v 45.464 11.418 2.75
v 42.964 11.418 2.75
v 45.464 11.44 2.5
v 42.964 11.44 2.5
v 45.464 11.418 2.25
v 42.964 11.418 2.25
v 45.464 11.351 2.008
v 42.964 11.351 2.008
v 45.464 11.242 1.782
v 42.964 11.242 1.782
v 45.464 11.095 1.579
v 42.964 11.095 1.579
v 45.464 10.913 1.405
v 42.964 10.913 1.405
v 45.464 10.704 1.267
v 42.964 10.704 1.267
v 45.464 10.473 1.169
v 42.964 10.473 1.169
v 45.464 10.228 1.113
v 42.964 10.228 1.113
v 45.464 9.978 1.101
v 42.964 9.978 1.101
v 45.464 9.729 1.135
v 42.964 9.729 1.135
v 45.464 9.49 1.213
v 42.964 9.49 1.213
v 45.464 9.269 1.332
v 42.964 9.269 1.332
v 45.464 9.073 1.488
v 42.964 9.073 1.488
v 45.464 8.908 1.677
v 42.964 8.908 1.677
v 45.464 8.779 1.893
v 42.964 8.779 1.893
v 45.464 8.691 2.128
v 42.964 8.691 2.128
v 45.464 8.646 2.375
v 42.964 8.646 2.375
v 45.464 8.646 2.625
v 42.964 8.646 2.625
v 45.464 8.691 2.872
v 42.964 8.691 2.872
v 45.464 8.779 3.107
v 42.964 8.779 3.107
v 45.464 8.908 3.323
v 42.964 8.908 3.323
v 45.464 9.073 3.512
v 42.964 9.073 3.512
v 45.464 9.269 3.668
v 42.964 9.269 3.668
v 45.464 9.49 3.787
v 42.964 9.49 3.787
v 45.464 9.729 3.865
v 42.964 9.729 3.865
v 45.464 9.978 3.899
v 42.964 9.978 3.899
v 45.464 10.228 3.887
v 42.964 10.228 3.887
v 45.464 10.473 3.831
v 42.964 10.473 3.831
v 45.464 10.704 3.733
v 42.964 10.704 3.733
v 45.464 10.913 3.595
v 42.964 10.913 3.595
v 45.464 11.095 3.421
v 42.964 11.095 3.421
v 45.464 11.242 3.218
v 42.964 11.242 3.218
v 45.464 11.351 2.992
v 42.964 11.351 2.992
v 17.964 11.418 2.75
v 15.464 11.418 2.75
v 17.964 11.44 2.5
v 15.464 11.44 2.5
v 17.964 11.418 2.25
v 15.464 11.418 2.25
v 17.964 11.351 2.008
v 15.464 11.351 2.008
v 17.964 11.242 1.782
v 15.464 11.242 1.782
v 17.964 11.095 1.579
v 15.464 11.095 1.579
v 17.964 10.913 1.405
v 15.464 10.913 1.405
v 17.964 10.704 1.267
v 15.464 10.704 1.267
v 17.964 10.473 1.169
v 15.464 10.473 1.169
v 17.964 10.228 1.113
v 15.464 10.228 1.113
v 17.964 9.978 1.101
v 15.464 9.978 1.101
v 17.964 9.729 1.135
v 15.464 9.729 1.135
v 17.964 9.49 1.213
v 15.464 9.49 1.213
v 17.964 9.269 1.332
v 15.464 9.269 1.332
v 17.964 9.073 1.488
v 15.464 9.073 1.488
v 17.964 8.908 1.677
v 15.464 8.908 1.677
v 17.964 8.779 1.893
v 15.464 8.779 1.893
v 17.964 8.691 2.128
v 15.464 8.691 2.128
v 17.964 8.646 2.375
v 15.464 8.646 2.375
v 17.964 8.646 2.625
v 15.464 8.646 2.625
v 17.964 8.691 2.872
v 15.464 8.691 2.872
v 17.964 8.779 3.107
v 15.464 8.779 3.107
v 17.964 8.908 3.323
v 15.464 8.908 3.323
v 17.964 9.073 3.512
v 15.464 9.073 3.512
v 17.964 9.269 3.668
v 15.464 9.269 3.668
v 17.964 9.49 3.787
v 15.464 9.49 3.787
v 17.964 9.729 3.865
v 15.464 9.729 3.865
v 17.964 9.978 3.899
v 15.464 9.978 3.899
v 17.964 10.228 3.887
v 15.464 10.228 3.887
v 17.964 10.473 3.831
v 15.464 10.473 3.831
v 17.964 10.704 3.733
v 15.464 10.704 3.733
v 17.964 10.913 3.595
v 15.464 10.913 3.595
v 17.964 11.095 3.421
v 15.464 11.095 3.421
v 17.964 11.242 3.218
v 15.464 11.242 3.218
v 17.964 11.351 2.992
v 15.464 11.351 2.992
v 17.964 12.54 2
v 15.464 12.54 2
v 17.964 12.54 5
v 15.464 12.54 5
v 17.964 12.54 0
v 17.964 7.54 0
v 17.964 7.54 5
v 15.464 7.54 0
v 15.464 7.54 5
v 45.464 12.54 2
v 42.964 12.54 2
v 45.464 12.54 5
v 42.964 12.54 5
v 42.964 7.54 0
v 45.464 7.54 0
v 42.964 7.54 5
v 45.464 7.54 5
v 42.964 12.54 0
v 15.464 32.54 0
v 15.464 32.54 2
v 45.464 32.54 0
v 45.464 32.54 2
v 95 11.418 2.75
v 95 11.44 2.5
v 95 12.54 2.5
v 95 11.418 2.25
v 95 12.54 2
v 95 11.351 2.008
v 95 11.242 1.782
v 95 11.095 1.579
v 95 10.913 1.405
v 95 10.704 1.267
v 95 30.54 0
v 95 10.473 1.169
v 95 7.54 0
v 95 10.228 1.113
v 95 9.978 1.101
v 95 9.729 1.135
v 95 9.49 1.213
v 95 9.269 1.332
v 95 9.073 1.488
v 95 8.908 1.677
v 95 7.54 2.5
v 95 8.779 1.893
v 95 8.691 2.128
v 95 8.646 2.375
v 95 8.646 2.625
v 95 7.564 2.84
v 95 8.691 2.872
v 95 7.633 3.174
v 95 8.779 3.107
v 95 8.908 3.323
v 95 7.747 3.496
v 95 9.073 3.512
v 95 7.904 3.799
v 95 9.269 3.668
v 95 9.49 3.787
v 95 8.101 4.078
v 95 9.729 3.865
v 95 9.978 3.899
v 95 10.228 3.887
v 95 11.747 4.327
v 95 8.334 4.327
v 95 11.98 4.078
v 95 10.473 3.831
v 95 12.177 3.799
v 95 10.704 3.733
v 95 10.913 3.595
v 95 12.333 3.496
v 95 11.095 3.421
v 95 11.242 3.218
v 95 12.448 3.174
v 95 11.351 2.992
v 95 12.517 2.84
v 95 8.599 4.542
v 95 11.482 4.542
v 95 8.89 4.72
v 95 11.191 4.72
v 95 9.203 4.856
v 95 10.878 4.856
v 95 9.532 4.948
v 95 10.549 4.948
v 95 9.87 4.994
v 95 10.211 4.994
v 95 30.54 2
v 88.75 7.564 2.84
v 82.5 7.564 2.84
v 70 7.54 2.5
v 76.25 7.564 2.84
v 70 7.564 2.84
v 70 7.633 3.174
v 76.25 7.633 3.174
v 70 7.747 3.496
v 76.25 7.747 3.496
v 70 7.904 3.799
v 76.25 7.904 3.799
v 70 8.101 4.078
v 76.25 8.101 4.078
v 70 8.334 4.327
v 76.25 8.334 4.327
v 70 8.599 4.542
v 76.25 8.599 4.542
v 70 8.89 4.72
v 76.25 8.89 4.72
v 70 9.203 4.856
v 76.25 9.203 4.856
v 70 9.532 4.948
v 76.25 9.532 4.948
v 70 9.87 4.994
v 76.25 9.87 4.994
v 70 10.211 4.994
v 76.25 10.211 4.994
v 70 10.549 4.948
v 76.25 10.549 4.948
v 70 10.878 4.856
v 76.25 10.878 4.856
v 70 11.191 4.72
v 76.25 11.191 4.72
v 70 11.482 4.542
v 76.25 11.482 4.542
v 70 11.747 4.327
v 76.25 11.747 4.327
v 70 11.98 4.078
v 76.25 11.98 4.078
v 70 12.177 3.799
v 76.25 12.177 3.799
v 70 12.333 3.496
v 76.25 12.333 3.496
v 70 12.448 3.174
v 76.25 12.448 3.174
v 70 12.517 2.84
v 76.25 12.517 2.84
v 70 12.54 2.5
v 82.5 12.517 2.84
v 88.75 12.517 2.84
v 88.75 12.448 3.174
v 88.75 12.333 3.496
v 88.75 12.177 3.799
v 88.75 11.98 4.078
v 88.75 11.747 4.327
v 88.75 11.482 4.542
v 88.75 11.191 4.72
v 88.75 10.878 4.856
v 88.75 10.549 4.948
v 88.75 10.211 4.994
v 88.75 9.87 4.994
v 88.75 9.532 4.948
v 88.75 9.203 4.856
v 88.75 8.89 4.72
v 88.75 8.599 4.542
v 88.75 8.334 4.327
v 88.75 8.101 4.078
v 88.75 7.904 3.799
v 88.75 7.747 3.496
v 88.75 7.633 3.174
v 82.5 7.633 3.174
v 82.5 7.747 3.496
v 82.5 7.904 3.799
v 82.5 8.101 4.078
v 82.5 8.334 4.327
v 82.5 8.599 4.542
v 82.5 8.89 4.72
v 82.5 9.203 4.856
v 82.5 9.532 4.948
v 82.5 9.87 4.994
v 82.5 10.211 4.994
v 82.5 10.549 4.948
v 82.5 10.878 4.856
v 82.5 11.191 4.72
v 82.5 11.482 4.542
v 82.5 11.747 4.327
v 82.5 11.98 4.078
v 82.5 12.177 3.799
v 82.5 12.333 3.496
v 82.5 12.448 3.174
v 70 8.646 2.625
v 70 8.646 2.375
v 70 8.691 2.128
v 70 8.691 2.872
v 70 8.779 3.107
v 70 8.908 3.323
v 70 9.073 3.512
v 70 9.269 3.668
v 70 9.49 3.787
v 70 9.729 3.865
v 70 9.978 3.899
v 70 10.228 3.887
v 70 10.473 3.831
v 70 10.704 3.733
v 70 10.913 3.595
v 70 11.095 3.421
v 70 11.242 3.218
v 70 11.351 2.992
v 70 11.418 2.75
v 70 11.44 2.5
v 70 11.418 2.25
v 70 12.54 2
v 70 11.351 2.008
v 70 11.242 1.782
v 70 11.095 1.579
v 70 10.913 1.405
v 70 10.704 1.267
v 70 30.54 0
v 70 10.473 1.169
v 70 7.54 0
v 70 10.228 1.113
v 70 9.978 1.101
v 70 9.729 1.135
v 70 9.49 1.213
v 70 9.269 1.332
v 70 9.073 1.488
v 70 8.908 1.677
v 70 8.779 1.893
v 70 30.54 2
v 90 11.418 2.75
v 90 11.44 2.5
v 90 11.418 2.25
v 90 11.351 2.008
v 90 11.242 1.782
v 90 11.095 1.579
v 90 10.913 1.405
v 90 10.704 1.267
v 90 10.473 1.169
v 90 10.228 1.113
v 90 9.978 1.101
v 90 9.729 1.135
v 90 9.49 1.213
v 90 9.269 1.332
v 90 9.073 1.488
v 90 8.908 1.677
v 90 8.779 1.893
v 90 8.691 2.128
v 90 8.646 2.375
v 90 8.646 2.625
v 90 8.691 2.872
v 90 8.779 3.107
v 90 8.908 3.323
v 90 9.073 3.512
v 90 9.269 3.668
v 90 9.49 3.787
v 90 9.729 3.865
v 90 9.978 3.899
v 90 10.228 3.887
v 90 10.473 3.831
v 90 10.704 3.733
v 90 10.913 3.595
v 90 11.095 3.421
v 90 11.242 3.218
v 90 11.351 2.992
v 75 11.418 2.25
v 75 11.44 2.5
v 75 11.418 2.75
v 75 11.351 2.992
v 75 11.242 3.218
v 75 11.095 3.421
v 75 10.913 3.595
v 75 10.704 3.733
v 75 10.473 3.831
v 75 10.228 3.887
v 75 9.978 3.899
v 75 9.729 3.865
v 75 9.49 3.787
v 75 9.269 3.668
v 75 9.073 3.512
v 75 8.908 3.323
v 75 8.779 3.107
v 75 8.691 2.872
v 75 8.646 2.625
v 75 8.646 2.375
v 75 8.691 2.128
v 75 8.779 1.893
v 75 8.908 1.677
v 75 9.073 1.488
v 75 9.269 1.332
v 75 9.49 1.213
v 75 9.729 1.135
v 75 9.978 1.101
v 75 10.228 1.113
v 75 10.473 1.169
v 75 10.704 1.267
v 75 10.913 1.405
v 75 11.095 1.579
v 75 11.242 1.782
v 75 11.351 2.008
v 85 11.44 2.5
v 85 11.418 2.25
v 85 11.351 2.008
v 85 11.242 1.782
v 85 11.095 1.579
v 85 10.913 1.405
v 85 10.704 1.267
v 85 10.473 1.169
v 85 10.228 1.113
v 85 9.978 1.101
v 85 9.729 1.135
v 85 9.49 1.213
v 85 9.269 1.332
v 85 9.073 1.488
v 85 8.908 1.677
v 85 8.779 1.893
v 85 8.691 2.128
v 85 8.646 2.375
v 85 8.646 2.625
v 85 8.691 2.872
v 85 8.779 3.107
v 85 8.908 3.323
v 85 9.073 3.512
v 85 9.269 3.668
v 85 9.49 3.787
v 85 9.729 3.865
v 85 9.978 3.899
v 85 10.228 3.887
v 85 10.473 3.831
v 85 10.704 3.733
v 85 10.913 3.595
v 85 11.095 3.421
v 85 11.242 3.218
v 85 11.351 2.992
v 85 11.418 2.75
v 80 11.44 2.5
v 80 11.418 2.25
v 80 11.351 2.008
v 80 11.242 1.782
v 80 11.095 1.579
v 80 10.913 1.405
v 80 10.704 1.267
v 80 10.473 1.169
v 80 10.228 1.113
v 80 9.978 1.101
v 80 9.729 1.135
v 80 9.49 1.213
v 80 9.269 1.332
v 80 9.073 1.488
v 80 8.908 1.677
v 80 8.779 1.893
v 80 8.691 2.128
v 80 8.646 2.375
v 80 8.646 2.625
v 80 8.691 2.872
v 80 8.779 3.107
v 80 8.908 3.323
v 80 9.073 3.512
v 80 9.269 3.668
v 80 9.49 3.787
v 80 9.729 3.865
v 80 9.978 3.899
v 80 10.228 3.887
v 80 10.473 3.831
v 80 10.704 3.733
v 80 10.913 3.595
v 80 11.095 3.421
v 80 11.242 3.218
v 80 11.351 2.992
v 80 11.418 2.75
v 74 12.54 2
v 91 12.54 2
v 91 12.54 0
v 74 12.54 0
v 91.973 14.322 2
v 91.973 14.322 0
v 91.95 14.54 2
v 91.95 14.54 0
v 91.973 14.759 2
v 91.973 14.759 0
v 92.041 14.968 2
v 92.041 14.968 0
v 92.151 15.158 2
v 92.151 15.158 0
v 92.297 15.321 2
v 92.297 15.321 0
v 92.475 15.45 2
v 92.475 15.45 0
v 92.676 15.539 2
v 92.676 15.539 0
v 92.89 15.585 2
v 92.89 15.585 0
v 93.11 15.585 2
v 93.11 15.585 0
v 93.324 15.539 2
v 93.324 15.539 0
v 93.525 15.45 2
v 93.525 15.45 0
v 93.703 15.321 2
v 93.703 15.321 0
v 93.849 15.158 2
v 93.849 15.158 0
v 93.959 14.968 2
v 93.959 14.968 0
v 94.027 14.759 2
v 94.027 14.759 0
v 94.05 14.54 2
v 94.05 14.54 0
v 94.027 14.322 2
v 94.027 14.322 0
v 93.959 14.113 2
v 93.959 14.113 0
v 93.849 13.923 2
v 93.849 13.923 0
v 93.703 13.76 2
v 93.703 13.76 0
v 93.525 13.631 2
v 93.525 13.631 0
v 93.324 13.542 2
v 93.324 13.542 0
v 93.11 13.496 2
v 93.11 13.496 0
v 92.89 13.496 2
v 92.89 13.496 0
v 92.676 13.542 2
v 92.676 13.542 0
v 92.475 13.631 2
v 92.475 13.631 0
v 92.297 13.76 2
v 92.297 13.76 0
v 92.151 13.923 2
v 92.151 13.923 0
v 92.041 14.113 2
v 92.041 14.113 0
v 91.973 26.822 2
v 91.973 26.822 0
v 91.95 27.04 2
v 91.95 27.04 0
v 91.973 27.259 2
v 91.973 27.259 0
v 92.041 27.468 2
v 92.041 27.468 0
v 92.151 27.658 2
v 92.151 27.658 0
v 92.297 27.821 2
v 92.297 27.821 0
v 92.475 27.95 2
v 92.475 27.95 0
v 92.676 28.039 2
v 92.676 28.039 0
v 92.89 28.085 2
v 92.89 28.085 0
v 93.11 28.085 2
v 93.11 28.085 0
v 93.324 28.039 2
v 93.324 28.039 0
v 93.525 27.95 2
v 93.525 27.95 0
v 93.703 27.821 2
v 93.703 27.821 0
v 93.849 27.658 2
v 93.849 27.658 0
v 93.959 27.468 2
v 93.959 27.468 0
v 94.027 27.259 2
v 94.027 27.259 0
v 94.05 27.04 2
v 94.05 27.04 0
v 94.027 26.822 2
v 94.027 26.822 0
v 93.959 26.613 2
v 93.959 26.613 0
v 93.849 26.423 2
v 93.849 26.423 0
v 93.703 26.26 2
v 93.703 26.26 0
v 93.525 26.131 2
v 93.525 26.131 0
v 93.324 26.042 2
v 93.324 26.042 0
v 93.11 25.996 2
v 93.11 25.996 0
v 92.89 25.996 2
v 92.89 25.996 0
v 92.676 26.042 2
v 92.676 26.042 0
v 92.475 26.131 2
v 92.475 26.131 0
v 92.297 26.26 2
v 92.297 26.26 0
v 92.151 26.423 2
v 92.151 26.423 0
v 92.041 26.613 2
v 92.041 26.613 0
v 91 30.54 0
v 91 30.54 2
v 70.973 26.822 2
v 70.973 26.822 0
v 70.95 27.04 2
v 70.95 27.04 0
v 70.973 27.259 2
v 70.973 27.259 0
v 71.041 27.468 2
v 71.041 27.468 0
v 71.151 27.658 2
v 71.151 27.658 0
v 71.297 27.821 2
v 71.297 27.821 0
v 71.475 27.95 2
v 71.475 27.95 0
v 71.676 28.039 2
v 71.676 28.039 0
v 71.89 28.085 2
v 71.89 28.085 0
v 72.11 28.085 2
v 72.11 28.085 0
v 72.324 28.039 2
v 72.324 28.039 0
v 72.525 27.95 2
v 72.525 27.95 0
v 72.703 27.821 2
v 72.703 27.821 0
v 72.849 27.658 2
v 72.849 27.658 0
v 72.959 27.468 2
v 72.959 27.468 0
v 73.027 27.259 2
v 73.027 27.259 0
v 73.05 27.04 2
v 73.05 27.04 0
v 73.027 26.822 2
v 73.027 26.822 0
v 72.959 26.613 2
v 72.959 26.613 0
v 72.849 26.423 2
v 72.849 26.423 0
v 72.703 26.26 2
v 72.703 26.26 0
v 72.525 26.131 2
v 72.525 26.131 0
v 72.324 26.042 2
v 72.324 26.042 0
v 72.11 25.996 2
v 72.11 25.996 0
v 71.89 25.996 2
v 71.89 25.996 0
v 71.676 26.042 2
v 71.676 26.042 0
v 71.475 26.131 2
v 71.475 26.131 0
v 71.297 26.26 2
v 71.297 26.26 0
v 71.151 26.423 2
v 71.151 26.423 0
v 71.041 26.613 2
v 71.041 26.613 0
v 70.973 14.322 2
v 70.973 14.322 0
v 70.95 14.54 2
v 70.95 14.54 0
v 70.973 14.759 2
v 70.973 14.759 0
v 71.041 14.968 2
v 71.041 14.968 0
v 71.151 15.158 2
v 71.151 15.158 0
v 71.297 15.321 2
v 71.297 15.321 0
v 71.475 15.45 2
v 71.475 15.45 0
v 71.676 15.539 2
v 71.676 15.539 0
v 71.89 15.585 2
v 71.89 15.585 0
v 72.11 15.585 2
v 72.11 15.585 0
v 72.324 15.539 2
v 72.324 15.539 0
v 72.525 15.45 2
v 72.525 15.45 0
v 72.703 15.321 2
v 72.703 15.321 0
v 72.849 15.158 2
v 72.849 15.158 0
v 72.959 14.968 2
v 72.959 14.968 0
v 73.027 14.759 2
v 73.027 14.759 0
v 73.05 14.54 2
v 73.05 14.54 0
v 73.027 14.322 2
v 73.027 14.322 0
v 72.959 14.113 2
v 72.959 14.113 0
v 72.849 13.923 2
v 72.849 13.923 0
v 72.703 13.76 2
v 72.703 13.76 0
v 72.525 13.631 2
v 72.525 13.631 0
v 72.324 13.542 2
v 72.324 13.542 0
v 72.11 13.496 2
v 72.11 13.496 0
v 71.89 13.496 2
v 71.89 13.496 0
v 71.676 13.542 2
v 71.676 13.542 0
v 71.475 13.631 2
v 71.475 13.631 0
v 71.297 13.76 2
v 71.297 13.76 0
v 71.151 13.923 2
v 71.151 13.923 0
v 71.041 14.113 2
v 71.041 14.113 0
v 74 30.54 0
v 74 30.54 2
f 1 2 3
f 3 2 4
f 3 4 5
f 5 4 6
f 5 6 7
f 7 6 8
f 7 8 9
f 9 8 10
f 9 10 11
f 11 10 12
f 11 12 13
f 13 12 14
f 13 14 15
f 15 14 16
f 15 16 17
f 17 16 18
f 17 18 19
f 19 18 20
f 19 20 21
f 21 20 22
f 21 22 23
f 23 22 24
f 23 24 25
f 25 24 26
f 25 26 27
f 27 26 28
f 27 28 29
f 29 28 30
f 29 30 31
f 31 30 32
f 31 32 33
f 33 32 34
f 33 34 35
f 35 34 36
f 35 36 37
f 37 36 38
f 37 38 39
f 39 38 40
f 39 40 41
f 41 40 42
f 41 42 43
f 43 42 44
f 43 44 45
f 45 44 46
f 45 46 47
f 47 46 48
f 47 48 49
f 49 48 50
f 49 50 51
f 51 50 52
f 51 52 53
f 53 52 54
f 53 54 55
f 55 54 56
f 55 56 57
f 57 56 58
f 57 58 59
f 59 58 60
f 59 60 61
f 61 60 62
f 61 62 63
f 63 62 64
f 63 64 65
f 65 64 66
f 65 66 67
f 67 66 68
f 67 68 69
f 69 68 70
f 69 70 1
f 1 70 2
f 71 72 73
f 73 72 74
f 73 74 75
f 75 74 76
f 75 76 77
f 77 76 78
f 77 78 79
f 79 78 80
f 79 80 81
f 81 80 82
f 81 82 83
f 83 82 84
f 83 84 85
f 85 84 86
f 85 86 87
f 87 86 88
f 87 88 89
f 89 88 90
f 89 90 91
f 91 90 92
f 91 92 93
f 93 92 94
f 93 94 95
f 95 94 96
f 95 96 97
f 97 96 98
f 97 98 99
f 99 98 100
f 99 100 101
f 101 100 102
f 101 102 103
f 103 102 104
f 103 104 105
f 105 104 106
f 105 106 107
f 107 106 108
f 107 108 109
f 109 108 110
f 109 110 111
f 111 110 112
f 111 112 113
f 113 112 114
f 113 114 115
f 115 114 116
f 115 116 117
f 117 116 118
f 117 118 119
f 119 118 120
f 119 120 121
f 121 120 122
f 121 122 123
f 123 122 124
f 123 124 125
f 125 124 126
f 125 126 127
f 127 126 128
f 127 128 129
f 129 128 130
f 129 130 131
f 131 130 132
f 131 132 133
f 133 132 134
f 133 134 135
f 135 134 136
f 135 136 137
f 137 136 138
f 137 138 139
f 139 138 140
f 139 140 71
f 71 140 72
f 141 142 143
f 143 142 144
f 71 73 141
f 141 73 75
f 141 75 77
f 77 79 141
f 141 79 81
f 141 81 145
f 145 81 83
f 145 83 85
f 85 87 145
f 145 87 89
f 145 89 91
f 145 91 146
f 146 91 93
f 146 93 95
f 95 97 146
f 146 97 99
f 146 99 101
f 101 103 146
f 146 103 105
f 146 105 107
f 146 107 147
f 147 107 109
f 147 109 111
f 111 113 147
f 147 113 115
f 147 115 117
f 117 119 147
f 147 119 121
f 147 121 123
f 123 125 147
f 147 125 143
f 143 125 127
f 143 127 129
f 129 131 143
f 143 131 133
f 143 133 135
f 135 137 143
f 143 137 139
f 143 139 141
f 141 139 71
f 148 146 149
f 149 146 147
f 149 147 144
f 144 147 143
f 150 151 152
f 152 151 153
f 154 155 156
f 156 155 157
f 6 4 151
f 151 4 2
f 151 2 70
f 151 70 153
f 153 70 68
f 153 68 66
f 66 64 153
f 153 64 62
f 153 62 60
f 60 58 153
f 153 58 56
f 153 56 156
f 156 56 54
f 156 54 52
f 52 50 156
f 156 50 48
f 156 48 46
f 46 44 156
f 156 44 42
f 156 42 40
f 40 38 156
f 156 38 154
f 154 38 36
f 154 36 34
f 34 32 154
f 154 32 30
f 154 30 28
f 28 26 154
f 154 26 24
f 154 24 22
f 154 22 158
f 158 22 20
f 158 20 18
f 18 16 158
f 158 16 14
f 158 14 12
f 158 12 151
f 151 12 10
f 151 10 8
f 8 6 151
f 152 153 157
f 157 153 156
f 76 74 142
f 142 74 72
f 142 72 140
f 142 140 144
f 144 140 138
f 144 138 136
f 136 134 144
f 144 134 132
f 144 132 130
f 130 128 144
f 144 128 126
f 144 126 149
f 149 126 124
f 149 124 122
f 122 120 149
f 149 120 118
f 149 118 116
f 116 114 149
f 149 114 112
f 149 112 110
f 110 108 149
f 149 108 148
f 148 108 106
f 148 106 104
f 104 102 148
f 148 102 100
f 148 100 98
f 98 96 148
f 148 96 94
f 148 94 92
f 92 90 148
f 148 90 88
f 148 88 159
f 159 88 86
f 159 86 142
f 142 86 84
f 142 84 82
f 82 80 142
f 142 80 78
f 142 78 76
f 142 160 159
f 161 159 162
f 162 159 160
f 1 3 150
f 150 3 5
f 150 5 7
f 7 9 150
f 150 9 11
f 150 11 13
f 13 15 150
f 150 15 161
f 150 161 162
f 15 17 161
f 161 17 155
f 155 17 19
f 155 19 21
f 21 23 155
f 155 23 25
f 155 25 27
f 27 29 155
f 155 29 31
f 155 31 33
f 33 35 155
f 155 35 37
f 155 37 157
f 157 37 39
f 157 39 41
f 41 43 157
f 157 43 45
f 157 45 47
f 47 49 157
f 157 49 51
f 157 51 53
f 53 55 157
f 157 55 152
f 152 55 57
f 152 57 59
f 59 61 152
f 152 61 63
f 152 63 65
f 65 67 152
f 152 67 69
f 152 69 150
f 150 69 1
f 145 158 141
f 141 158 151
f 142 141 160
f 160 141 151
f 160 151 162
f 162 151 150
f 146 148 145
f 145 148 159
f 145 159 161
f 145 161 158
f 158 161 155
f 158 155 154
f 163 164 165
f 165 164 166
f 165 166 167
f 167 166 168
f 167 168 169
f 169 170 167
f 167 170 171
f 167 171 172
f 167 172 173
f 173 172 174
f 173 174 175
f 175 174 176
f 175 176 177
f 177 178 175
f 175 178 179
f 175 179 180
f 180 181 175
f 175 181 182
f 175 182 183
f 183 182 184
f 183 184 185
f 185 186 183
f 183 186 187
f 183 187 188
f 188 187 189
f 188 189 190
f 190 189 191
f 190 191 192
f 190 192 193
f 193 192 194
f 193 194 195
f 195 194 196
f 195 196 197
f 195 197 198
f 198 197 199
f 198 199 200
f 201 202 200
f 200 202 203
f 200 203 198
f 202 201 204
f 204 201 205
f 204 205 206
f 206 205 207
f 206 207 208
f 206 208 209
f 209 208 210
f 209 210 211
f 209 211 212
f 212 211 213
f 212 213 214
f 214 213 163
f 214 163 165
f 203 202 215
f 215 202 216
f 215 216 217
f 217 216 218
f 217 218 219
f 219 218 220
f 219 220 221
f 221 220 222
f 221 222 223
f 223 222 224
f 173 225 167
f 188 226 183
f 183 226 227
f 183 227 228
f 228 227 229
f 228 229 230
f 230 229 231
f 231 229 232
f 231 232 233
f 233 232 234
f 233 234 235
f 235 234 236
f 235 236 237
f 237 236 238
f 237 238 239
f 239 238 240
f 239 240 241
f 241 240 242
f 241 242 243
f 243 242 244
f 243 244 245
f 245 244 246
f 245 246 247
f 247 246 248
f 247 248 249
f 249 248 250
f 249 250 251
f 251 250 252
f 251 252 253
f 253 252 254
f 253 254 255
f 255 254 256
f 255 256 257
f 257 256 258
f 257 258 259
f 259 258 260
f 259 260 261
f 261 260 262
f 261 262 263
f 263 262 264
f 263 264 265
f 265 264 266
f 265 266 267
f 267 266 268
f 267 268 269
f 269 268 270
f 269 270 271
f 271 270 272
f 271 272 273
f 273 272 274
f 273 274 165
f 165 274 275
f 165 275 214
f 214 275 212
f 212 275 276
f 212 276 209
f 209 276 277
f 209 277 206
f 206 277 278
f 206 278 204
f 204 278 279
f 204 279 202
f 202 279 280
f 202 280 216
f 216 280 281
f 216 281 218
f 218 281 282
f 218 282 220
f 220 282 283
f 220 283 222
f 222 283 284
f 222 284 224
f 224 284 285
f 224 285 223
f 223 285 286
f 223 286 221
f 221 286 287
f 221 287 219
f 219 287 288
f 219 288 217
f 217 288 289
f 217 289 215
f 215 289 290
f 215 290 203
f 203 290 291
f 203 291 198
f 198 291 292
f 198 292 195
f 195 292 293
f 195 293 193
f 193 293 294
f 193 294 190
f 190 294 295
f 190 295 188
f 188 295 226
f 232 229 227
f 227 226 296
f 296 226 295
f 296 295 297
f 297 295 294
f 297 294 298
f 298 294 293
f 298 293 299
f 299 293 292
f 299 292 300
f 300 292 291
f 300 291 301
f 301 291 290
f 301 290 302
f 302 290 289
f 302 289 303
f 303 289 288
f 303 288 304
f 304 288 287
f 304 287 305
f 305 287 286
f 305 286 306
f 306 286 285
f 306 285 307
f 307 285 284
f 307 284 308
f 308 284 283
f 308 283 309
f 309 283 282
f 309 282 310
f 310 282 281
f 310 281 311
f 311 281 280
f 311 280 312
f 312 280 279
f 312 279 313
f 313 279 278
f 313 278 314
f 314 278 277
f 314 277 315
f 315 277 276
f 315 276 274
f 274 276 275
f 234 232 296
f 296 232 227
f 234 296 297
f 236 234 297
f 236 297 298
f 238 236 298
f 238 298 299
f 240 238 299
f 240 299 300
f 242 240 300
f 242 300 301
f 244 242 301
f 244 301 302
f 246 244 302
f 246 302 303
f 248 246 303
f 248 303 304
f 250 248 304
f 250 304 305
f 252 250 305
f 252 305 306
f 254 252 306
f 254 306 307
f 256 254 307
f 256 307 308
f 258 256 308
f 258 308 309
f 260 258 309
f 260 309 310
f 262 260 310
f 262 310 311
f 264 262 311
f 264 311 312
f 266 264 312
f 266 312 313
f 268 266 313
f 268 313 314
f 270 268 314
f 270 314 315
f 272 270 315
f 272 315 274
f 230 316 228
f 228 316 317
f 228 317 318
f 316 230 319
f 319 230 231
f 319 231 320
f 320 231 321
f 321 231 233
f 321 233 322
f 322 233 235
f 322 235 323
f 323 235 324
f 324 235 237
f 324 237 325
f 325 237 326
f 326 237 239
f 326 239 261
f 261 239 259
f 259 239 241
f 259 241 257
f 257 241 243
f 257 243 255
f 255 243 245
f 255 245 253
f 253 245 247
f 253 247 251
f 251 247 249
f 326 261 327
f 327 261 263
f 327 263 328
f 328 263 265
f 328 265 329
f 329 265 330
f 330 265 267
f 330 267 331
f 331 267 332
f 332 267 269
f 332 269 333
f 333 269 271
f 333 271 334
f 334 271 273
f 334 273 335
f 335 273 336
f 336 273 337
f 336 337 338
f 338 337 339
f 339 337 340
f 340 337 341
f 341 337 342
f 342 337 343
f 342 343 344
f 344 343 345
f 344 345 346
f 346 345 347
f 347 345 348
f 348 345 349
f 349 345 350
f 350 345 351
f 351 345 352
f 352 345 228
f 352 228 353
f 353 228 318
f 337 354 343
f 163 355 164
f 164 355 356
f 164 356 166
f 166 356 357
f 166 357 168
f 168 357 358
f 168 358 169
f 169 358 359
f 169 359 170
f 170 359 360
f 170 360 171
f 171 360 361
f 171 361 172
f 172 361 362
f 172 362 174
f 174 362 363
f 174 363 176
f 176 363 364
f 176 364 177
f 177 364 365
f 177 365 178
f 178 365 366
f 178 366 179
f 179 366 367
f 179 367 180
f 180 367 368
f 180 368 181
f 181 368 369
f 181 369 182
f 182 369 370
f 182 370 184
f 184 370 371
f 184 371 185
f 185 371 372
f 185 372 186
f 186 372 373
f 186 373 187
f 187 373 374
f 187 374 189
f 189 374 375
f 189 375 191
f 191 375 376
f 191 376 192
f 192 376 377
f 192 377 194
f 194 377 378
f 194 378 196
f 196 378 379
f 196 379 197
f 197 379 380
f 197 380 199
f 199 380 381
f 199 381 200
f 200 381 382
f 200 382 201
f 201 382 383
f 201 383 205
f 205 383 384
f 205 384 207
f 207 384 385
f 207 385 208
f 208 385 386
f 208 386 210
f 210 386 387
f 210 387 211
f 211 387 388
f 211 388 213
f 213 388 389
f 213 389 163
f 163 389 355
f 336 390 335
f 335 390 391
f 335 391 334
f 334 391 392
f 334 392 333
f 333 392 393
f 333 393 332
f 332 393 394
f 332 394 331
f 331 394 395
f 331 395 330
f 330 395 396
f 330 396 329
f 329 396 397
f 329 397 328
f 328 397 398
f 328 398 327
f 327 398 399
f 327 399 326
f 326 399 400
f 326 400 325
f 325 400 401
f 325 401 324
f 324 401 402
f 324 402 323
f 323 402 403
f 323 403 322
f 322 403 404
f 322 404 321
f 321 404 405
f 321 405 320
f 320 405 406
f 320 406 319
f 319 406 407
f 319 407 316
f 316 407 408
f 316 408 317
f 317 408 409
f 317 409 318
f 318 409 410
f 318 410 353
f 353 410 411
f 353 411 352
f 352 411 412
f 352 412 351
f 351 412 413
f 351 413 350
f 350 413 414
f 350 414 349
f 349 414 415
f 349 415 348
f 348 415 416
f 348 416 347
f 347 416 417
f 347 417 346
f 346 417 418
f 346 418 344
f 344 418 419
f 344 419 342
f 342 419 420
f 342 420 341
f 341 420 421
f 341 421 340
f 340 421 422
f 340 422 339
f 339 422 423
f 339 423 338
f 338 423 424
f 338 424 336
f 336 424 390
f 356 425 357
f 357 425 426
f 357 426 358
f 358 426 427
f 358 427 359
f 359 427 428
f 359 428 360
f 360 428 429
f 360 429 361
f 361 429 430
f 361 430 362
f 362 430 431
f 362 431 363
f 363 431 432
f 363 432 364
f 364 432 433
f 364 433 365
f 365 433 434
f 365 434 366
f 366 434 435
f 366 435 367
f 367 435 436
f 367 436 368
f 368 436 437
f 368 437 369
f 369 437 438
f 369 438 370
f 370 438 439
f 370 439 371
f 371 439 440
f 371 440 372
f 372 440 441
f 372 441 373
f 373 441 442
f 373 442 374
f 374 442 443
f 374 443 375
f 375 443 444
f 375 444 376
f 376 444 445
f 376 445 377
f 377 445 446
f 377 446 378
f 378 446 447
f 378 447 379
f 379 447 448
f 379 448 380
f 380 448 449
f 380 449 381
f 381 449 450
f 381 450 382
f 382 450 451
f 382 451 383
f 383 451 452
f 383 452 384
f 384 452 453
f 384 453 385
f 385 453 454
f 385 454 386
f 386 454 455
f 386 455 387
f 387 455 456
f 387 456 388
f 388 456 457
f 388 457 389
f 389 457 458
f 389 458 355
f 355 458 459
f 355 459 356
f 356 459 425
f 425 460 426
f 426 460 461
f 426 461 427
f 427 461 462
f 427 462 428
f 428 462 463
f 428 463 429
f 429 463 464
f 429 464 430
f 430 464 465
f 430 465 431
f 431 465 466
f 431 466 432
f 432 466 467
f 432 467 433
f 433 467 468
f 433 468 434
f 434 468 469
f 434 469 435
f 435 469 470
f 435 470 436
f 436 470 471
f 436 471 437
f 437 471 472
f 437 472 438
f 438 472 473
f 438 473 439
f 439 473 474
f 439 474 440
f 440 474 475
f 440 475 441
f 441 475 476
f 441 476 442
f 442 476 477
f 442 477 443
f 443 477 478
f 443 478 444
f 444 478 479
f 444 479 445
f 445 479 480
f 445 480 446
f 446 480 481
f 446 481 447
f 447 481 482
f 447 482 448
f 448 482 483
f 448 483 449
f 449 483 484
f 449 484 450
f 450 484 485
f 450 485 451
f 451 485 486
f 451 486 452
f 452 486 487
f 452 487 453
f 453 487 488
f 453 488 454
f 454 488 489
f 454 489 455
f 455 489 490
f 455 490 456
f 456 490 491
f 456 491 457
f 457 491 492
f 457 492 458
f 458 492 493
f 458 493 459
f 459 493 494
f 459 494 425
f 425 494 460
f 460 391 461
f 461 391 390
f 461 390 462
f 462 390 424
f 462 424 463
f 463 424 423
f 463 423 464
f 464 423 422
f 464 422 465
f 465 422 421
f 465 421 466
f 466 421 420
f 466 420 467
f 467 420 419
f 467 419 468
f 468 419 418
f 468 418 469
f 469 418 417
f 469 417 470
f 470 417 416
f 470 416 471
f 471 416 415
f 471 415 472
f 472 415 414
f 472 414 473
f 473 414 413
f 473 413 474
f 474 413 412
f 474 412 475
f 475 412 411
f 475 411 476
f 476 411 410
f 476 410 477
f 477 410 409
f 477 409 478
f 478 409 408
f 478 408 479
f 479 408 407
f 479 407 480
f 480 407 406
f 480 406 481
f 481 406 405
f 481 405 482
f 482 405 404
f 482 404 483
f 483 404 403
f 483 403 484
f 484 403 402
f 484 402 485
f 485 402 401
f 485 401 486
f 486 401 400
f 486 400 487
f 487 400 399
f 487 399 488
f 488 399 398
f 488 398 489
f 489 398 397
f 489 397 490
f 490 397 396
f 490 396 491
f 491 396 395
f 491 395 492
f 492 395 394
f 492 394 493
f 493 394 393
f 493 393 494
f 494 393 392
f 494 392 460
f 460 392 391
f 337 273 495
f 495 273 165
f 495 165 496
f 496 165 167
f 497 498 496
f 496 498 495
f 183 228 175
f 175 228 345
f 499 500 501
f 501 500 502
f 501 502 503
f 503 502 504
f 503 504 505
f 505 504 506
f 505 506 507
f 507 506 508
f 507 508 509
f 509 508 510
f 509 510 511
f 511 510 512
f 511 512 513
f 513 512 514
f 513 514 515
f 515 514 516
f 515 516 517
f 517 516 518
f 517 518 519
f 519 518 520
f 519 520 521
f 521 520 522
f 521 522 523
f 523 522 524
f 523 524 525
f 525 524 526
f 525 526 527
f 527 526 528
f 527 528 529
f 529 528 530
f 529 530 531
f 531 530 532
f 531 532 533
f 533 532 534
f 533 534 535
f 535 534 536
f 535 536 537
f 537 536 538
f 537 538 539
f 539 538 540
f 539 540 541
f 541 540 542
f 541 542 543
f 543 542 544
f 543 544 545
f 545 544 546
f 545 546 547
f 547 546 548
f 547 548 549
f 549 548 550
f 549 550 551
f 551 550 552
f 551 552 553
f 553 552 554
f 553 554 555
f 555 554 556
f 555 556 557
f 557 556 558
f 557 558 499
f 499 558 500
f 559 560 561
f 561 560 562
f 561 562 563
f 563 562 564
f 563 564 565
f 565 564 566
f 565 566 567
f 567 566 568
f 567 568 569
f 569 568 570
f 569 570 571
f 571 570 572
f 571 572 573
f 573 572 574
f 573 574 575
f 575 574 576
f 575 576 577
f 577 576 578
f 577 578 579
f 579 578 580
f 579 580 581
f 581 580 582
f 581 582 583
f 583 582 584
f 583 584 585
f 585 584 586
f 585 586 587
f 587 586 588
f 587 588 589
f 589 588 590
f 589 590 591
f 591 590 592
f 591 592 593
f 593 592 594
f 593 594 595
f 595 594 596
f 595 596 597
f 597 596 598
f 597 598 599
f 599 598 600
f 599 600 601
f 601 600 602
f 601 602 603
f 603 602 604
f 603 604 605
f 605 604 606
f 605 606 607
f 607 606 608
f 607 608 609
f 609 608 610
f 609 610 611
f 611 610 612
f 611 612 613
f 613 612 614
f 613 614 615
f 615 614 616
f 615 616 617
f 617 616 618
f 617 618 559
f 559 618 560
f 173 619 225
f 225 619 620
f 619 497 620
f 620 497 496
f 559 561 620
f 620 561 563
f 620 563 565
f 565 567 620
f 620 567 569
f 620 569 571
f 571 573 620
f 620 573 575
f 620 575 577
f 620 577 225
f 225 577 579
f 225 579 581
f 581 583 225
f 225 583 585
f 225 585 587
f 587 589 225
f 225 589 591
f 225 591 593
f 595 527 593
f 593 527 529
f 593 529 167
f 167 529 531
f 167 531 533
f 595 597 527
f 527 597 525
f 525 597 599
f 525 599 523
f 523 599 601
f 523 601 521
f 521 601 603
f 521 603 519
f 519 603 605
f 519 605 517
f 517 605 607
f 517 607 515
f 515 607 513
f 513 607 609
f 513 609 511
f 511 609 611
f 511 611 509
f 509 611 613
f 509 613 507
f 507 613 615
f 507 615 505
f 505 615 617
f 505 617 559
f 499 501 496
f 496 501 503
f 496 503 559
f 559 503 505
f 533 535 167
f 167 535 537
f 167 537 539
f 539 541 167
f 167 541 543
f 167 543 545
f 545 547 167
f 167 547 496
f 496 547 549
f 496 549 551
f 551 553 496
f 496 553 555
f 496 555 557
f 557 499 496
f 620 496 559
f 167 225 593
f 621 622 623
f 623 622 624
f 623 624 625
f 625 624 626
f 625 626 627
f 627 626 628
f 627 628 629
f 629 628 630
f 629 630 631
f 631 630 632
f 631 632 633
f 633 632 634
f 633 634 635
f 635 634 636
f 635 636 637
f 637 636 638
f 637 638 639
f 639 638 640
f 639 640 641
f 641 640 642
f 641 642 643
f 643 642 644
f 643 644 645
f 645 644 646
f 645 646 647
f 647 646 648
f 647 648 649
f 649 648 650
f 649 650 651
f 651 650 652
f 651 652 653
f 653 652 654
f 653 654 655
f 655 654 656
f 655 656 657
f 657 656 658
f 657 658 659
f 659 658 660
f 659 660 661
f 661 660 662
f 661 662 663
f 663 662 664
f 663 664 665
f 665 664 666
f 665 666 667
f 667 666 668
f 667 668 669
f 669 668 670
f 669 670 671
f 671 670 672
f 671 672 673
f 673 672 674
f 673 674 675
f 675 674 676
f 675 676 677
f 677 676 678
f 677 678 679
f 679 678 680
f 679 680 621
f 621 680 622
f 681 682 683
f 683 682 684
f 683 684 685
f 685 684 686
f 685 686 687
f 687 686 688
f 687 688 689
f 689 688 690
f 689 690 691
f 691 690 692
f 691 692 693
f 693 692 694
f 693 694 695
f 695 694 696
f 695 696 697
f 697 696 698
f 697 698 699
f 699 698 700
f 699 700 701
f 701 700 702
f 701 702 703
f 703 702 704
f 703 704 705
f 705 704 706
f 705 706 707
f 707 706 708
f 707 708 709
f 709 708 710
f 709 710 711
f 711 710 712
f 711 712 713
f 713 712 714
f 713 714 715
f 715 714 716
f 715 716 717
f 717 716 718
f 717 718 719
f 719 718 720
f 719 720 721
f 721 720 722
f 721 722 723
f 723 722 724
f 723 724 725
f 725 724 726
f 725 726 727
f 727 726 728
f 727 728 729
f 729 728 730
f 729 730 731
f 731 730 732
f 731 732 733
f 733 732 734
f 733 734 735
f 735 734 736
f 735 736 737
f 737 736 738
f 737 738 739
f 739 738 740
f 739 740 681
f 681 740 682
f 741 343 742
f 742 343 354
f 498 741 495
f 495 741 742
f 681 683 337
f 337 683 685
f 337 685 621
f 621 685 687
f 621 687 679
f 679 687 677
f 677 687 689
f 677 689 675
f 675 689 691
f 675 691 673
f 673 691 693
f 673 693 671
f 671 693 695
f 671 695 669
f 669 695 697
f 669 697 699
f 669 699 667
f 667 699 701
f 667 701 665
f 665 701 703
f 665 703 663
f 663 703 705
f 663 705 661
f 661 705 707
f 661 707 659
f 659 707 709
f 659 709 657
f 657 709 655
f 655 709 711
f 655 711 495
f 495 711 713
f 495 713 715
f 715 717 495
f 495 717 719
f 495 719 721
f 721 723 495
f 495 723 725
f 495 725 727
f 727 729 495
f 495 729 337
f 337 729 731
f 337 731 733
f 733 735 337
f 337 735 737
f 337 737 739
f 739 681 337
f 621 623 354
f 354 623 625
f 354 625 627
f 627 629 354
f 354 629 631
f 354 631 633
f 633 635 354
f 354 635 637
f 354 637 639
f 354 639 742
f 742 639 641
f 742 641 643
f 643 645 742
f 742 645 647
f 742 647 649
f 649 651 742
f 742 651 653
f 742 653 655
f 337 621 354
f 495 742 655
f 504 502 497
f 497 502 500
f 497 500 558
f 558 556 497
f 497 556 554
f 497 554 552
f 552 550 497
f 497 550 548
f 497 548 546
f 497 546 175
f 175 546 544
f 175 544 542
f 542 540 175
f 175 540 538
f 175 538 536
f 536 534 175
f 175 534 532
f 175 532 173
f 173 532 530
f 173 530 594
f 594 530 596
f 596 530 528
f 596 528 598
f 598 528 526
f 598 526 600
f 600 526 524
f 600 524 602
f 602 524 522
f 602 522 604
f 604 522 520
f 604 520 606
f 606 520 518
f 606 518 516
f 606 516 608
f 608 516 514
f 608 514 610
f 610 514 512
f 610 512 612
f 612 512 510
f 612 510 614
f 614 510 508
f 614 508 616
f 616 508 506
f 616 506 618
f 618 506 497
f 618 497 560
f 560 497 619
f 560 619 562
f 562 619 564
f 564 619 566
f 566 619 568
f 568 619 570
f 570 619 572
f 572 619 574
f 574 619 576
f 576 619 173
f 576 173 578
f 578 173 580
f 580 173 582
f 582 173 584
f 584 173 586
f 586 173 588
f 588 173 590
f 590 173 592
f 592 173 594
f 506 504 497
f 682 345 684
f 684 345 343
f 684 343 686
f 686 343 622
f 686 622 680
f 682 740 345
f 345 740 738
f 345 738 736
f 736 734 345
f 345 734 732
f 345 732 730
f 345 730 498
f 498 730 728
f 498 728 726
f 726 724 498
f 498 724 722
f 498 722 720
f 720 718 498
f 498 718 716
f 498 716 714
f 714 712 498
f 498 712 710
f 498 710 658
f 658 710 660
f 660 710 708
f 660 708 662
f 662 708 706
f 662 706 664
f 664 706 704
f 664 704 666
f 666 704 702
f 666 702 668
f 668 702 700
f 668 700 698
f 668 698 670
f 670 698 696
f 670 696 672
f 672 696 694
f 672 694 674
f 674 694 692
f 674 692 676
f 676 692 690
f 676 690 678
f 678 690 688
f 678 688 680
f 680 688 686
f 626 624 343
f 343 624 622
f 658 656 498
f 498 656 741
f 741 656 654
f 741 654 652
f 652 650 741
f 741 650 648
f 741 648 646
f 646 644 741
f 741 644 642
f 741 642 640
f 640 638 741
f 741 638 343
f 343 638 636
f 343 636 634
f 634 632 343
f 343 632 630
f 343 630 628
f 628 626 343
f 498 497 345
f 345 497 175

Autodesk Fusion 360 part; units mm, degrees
sketch "スケッチ1" plane through (0, 0, 0) normal (0, 0, 1) x (1, 0, 0)
  line L0 (15.4645, 12.5405) -> (45.4645, 12.5405) construction
  line L1 (45.4645, 12.5405) -> (45.4645, 32.5405)
  line L2 (45.4645, 32.5405) -> (15.4645, 32.5405)
  line L3 (15.4645, 32.5405) -> (15.4645, 12.5405)
  line L4 (70, 12.5405) -> (95, 12.5405) construction
  line L5 (95, 12.5405) -> (95, 32.5405)
  line L6 (95, 32.5405) -> (70, 32.5405) construction
  line L7 (70, 32.5405) -> (70, 12.5405)
  line L8 (72, 32.5405) -> (72, 12.5405) construction
  circle A0 centre (72, 27.0405) radius 1.05
  circle A1 centre (72, 14.5405) radius 1.05
  line L9 (82.5, 32.5405) -> (82.5, 12.5405) construction
  circle A2 centre (93, 27.0405) radius 1.05
  circle A3 centre (93, 14.5405) radius 1.05
  line L10 (70, 30.5405) -> (74, 30.5405)
  line L11 (74, 30.5405) -> (74, 12.5405)
  line L12 (91, 30.5405) -> (91, 12.5405)
  line L13 (95, 30.5405) -> (91, 30.5405)
  line L14 (70, 12.5405) -> (95, 12.5405)
  line L15 (95, 12.5405) -> (95, 7.5405)
  line L16 (95, 7.5405) -> (70, 7.5405)
  line L17 (70, 7.5405) -> (70, 12.5405)
  line L18 (15.4645, 12.5405) -> (45.4645, 12.5405)
  line L19 (45.4645, 12.5405) -> (45.4645, 7.5405)
  line L20 (45.4645, 7.5405) -> (15.4645, 7.5405)
  line L21 (15.4645, 7.5405) -> (15.4645, 12.5405)
  line L22 (17.9645, 12.5405) -> (42.9645, 12.5405)
  line L23 (42.9645, 12.5405) -> (42.9645, 7.5405)
  line L24 (42.9645, 7.5405) -> (17.9645, 7.5405)
  line L25 (17.9645, 7.5405) -> (17.9645, 12.5405)
  dimension "d1" = 30
  dimension "d2" = 20
  dimension "d3" = 25
  dimension "d4" = 20
  dimension "d5" = 2
  dimension "d7" = 2.1
  dimension "d8" = 2.1
  dimension "d11" = 12.5
  dimension "d12" = 2
  dimension "d13" = 4
  dimension "d14" = 18
  dimension "d15" = 25
  dimension "d16" = 5
  dimension "d18" = 5
  dimension "d19" = 25
  dimension "d20" = 5
  dimension "d21" = 2.5
extrude "押し出し1" add sketch "スケッチ1" along normal blind 2 contours L1 L2 L3 L18 L22 makes body 1
extrude "押し出し2" add sketch "スケッチ1" along normal blind 2 separate body contours L5 L12 L13 L14 | L7 L10 L11 L14 makes body 2 at (72.0262, 29.7228, 0) makes body 3 at (92.9738, 29.7228, 0)
extrude "押し出し3" add sketch "スケッチ1" along normal blind 5 contours L18 L19 L20 L23 | L18 L20 L21 L25 bodies 1
extrude "押し出し4" add sketch "スケッチ1" along normal blind 5 contours L14 L15 L16 L17 bodies 2 3
sketch "スケッチ2" plane through (15.4645, 0, 0) normal (-1, 0, 0) x (0, -1, 0)
  line L0 (-32.5405, 0) -> (-7.5405, 0)
  line L1 (-7.5405, 0) -> (-7.5405, 5)
  line L2 (-7.5405, 5) -> (-12.5405, 5)
  line L3 (-12.5405, 5) -> (-12.5405, 2)
  line L4 (-12.5405, 2) -> (-32.5405, 2)
  line L5 (-32.5405, 2) -> (-32.5405, 0)
  circle A0 centre (-10.0405, 2.5) radius 1.4
  dimension "d30" = 2.8
  dimension "d31" = 2.5
  dimension "d32" = 2.5
extrude "押し出し5" cut sketch "スケッチ2" against normal blind 99 contours A0 bodies 1 2
fillet "フィレット1" radius 2.5 2 edges at (82.5, 7.5405, 5) (82.5, 12.5405, 5) on bodies 2
